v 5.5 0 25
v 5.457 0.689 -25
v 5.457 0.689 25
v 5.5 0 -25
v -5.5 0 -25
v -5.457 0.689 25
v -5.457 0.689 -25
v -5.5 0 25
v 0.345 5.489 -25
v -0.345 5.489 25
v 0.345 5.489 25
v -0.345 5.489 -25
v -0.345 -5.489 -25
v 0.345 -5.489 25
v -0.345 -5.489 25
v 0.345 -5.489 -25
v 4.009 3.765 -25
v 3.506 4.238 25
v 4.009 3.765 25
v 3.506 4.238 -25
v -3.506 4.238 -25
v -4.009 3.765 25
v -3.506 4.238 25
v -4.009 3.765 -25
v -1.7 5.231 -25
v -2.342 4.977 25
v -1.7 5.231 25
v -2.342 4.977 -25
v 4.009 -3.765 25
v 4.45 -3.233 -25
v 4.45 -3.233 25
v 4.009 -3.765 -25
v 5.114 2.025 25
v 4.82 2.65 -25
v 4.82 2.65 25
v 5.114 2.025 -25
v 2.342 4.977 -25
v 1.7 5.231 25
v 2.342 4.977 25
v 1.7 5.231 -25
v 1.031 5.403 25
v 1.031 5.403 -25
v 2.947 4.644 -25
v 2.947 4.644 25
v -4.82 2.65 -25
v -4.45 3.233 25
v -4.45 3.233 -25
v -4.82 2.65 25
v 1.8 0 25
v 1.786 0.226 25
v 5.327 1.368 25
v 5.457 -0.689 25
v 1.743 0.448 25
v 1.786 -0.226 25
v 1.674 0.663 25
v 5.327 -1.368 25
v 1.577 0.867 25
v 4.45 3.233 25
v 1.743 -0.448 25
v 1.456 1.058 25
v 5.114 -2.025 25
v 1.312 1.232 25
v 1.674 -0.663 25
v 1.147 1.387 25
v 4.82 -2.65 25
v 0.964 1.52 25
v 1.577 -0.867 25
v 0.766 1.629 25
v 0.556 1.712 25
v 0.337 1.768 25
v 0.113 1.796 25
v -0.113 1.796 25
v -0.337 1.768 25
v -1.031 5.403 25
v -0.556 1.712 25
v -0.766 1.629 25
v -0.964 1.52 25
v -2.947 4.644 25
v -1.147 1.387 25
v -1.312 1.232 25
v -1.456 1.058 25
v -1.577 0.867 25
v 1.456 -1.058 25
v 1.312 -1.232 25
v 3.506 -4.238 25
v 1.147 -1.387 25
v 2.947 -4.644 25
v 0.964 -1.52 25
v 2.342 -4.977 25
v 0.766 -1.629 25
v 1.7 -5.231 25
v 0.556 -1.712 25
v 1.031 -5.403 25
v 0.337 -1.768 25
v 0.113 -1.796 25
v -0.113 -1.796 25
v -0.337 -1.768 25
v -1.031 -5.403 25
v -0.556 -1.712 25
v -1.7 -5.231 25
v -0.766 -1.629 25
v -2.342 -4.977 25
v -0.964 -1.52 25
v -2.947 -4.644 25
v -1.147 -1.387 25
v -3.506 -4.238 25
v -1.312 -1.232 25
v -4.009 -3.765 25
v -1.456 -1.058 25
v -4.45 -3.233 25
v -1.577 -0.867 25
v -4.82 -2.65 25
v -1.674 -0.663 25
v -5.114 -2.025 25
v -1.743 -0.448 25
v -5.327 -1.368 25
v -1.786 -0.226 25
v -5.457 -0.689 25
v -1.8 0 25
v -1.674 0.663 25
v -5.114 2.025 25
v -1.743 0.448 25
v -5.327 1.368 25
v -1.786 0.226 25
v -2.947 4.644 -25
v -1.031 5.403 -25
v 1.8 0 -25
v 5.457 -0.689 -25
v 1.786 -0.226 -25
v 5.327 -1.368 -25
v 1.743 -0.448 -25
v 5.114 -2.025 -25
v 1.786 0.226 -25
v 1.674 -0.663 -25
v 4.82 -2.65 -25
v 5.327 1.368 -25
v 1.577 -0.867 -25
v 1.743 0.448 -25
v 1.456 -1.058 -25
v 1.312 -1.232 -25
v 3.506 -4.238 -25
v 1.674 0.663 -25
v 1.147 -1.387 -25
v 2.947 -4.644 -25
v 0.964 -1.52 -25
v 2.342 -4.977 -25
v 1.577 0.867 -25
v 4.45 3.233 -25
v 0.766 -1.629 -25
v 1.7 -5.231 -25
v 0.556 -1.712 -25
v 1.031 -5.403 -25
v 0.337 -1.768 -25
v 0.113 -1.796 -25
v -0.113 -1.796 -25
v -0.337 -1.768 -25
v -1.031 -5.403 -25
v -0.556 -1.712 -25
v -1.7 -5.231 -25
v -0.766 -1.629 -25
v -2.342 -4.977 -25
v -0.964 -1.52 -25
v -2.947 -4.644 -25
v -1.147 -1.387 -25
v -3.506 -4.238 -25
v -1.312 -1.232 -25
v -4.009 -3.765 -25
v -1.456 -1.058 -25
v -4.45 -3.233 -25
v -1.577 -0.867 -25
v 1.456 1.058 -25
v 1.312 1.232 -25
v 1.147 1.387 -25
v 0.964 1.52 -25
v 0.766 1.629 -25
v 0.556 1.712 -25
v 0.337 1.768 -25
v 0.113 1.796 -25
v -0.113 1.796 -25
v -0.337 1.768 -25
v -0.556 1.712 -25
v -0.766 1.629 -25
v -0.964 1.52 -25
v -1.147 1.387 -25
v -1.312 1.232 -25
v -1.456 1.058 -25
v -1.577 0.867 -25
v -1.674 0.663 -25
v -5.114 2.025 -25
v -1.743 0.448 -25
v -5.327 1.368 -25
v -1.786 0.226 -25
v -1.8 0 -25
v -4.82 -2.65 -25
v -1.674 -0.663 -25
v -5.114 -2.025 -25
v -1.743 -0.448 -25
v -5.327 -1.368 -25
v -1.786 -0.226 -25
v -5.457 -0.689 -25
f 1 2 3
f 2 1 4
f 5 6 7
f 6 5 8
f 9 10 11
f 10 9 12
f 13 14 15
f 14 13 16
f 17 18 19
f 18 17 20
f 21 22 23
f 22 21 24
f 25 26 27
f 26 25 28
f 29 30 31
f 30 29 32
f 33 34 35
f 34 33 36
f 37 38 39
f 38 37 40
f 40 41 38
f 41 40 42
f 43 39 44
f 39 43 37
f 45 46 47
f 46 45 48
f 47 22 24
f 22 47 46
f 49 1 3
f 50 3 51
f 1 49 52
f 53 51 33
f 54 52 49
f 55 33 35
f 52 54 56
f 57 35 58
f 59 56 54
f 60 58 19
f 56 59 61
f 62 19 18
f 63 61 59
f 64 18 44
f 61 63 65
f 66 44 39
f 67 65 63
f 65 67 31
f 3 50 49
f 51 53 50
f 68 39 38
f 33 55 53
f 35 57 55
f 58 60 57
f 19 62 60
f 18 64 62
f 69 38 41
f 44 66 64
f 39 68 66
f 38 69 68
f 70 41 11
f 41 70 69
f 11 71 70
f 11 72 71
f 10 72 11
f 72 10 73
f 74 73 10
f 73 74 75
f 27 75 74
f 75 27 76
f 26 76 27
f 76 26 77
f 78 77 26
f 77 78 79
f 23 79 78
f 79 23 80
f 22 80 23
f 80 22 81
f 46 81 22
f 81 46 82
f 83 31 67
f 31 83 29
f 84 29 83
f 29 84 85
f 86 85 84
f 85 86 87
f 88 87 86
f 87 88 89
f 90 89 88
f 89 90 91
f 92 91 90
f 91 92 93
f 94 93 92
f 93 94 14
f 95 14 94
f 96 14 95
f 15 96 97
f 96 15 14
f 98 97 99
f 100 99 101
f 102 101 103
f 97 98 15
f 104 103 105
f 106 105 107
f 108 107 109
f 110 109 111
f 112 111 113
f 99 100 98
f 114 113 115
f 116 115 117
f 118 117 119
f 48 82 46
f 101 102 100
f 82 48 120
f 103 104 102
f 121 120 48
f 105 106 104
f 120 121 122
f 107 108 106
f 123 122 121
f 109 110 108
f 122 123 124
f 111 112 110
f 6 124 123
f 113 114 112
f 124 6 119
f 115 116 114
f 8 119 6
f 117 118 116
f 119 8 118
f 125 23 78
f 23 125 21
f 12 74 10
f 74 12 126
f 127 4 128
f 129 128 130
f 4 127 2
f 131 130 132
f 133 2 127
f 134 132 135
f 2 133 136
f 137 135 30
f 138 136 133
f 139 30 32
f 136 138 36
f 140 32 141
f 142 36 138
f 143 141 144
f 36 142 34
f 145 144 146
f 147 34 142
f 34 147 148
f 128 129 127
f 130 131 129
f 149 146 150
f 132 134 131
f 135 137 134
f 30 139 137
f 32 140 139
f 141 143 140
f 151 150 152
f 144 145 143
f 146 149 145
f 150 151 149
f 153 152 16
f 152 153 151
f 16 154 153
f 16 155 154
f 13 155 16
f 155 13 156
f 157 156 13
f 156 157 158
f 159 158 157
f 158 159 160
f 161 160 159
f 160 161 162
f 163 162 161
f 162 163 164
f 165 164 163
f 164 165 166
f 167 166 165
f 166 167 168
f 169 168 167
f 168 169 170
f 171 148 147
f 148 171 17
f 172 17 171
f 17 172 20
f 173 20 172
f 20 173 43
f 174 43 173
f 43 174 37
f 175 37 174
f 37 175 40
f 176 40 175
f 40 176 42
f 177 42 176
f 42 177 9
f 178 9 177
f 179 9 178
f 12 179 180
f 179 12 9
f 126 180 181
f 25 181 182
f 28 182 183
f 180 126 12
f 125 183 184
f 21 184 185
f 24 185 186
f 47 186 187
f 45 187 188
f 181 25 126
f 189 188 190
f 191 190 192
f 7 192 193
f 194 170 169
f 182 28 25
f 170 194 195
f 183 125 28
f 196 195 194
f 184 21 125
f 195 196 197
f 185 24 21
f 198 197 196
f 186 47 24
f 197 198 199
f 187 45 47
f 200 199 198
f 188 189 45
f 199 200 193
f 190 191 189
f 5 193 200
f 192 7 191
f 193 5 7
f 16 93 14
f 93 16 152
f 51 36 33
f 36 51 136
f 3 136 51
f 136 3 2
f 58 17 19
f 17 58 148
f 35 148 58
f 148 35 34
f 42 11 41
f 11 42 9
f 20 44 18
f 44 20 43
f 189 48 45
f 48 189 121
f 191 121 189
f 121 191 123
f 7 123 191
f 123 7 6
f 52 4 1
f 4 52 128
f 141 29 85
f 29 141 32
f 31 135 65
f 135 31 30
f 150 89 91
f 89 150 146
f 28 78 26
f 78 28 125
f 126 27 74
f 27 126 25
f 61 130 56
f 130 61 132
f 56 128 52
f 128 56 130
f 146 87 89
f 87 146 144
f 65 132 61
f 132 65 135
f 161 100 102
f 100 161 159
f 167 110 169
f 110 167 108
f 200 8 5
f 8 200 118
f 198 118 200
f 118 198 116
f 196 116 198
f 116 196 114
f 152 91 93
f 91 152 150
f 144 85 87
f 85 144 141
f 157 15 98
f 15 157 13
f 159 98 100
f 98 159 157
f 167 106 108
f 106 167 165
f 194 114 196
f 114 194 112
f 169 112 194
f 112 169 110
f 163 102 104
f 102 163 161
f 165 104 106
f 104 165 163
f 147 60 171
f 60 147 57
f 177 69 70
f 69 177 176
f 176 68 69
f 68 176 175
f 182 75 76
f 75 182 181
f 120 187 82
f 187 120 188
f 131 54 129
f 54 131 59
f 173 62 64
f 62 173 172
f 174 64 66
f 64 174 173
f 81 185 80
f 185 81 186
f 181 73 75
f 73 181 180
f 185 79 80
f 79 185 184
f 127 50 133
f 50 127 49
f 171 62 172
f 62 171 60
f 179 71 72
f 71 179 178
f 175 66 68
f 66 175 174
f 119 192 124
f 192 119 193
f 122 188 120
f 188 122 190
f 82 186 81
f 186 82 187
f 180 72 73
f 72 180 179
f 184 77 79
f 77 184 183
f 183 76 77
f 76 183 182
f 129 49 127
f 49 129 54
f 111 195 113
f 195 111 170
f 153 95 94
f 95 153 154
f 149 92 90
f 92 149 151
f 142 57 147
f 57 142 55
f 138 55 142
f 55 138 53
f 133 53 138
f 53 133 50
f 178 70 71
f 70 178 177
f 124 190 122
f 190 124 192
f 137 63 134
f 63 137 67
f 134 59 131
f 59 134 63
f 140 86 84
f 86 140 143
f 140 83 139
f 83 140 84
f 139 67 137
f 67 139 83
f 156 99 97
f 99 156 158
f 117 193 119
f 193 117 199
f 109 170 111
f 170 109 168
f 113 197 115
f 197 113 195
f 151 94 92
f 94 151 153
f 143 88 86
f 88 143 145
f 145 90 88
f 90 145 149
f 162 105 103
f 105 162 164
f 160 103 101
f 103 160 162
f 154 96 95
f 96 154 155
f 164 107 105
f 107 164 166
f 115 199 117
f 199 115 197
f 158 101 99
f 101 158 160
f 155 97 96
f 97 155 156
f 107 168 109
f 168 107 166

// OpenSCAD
$fn = 50;


difference() {
	union() {
		translate(v = [0, 0, -25.0000000000]) {
			cylinder(h = 50, r = 5.5000000000);
		}
	}
	union() {
		translate(v = [0, 0, -100.0000000000]) {
			cylinder(h = 200, r = 1.8000000000);
		}
	}
}
